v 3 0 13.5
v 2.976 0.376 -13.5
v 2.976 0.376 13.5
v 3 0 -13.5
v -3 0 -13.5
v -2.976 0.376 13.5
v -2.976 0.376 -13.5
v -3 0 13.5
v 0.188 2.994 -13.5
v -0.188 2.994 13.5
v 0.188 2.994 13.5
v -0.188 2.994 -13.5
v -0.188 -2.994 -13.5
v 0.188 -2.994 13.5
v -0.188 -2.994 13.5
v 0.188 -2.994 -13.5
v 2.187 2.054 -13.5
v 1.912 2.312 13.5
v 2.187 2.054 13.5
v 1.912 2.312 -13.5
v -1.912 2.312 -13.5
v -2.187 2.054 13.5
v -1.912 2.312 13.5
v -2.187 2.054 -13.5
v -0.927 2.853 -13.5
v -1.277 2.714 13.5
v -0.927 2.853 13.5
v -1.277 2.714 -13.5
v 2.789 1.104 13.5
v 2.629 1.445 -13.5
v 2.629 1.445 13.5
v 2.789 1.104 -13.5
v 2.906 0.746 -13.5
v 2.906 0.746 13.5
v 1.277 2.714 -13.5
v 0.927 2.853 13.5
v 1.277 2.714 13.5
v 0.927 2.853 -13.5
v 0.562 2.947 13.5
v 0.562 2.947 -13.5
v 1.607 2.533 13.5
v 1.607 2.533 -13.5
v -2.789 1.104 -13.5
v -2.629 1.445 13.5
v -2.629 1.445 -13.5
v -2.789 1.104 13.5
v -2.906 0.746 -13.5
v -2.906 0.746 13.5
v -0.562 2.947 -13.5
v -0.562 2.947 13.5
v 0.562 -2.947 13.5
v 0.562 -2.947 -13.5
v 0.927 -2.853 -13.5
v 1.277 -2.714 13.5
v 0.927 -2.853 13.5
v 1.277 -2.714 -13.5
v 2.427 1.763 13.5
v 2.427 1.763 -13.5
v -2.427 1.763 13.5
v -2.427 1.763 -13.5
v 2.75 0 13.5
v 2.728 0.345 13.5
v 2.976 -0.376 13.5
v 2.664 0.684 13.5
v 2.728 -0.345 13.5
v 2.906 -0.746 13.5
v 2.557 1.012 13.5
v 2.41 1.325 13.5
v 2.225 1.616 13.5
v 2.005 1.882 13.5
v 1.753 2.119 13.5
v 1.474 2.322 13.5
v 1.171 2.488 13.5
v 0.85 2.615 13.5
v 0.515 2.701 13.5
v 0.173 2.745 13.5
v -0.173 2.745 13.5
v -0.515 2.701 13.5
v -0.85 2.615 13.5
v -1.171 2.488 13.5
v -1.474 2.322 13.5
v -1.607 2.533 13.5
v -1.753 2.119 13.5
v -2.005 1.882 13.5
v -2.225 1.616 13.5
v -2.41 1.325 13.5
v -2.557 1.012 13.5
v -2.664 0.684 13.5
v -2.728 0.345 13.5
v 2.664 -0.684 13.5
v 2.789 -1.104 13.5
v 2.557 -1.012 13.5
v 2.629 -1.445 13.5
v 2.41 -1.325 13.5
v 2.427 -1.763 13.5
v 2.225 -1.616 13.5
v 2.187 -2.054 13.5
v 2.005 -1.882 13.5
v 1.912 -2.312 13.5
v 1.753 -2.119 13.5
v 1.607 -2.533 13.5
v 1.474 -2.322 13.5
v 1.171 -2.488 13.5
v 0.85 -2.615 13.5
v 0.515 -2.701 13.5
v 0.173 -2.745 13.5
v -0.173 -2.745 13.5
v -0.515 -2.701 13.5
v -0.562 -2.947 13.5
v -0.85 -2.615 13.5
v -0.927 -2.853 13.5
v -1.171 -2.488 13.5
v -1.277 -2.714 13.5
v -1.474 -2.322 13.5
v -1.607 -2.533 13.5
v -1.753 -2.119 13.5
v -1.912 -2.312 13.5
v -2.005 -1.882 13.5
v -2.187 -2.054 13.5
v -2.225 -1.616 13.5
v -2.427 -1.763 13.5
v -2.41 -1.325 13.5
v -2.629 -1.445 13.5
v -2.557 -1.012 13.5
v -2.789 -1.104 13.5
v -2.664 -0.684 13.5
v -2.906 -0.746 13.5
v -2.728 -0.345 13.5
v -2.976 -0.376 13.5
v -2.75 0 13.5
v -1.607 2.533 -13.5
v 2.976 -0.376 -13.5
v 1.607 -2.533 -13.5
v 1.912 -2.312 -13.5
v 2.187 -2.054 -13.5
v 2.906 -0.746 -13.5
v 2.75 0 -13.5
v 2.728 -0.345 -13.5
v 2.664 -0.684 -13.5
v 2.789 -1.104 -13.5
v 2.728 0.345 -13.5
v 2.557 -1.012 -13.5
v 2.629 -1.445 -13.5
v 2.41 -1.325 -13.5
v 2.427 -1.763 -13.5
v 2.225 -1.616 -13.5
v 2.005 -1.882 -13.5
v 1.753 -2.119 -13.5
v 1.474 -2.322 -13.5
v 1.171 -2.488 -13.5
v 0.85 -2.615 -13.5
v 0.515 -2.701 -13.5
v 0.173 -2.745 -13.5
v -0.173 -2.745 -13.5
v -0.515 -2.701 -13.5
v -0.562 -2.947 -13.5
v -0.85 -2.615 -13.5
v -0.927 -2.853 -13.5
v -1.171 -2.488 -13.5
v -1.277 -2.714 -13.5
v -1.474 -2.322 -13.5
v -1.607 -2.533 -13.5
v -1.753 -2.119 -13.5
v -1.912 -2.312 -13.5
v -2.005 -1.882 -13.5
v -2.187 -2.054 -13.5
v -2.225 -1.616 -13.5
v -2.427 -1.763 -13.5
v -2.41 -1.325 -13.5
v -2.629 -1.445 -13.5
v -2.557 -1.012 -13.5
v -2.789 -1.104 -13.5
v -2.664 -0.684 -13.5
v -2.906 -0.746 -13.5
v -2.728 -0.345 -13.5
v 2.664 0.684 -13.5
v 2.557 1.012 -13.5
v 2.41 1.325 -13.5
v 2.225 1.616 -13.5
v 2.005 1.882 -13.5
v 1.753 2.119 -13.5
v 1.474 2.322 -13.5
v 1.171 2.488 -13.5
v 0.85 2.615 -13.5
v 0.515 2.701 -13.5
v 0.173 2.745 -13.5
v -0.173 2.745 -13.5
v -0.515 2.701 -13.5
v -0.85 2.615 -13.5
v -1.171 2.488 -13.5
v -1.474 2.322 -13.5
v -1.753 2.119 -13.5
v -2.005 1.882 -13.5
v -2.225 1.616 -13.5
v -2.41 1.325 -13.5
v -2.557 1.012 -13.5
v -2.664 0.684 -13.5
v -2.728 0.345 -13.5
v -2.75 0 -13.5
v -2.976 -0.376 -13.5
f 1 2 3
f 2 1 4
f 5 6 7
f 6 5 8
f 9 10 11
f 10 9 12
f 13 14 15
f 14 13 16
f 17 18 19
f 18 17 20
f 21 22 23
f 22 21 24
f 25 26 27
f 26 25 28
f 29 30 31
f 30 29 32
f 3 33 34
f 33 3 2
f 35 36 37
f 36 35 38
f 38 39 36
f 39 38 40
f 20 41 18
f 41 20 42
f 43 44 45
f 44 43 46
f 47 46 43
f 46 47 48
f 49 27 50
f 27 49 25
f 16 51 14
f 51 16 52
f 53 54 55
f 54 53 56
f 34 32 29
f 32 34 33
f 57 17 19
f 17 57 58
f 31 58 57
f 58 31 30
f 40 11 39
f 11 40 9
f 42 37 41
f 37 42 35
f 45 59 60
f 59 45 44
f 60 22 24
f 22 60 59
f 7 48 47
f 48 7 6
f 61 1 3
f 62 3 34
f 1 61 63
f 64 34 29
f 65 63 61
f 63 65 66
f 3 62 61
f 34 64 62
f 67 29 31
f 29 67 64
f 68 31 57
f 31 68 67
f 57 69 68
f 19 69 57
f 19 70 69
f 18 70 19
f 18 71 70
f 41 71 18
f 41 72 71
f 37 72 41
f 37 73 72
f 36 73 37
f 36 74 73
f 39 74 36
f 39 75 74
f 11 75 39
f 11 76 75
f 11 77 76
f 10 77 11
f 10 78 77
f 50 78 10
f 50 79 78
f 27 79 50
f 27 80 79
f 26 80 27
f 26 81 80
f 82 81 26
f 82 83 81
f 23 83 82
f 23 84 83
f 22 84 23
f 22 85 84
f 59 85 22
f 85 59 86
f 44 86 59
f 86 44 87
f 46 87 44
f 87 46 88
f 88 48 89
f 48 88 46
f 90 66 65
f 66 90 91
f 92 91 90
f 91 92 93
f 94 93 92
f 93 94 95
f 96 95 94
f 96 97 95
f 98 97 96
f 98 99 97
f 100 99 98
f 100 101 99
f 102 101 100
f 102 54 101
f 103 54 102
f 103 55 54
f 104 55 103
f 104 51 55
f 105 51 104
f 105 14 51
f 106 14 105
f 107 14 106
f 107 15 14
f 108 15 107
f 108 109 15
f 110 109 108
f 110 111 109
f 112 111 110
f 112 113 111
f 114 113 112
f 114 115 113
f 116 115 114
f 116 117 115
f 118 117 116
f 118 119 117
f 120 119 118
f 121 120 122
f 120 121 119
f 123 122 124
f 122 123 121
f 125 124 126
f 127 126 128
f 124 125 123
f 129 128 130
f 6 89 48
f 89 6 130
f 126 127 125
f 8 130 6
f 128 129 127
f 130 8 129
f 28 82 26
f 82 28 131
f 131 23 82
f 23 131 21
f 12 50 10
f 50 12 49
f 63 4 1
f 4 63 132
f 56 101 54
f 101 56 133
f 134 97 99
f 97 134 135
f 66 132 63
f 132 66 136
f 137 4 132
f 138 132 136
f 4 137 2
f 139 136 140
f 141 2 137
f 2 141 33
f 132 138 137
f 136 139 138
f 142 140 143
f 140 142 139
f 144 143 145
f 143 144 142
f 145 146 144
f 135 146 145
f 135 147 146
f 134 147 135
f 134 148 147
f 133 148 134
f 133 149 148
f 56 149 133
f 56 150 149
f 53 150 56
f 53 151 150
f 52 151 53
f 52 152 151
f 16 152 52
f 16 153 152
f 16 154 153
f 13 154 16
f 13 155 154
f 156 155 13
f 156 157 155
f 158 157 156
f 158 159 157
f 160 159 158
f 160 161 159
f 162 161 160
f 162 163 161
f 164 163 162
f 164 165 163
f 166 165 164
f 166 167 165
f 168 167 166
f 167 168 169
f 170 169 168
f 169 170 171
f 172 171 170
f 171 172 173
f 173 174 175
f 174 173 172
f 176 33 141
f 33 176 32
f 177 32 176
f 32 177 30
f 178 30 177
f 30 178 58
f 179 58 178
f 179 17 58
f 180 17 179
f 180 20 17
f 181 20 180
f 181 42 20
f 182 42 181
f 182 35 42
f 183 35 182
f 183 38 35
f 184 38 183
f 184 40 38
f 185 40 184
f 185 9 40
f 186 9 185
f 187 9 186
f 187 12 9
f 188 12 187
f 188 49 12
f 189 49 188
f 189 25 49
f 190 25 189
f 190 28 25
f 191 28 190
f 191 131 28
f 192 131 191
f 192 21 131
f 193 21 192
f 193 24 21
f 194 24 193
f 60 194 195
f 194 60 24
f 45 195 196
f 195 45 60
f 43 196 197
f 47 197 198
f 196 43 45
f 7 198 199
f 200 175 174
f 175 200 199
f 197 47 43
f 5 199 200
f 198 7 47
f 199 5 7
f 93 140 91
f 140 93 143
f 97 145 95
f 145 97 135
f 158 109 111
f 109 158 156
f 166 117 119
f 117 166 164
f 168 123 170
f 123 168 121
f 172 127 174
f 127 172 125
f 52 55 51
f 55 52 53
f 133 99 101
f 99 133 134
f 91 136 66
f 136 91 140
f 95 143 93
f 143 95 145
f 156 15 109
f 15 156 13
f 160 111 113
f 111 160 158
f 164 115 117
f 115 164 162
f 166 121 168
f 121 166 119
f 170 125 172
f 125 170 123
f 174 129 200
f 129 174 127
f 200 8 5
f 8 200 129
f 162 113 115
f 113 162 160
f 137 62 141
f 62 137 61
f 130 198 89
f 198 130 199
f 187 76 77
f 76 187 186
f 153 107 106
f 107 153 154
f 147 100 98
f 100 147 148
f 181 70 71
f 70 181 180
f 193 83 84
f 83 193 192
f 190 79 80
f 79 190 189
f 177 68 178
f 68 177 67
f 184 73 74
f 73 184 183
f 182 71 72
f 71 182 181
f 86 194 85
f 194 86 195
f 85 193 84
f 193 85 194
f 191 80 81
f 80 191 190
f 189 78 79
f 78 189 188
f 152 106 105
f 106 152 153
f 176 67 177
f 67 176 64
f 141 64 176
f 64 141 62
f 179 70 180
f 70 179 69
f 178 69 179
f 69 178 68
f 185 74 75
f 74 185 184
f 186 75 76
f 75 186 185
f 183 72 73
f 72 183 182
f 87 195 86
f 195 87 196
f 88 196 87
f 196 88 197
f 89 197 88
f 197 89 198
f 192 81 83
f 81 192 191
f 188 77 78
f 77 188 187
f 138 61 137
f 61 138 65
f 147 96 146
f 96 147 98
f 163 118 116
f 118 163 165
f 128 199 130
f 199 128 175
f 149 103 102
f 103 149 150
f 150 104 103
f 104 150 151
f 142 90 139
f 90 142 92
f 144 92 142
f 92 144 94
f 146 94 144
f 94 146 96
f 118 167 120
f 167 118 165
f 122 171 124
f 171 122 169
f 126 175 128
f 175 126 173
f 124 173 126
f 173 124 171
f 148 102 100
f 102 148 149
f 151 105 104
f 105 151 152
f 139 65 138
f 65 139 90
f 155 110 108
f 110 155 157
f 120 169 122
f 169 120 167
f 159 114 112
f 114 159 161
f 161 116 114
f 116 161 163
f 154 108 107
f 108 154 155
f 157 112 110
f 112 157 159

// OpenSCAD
$fn = 50;


difference() {
	union() {
		translate(v = [0, 0, -13.5000000000]) {
			cylinder(h = 27, r = 3.0000000000);
		}
	}
	union() {
		translate(v = [0, 0, -100.0000000000]) {
			cylinder(h = 200, r = 2.7500000000);
		}
	}
}
